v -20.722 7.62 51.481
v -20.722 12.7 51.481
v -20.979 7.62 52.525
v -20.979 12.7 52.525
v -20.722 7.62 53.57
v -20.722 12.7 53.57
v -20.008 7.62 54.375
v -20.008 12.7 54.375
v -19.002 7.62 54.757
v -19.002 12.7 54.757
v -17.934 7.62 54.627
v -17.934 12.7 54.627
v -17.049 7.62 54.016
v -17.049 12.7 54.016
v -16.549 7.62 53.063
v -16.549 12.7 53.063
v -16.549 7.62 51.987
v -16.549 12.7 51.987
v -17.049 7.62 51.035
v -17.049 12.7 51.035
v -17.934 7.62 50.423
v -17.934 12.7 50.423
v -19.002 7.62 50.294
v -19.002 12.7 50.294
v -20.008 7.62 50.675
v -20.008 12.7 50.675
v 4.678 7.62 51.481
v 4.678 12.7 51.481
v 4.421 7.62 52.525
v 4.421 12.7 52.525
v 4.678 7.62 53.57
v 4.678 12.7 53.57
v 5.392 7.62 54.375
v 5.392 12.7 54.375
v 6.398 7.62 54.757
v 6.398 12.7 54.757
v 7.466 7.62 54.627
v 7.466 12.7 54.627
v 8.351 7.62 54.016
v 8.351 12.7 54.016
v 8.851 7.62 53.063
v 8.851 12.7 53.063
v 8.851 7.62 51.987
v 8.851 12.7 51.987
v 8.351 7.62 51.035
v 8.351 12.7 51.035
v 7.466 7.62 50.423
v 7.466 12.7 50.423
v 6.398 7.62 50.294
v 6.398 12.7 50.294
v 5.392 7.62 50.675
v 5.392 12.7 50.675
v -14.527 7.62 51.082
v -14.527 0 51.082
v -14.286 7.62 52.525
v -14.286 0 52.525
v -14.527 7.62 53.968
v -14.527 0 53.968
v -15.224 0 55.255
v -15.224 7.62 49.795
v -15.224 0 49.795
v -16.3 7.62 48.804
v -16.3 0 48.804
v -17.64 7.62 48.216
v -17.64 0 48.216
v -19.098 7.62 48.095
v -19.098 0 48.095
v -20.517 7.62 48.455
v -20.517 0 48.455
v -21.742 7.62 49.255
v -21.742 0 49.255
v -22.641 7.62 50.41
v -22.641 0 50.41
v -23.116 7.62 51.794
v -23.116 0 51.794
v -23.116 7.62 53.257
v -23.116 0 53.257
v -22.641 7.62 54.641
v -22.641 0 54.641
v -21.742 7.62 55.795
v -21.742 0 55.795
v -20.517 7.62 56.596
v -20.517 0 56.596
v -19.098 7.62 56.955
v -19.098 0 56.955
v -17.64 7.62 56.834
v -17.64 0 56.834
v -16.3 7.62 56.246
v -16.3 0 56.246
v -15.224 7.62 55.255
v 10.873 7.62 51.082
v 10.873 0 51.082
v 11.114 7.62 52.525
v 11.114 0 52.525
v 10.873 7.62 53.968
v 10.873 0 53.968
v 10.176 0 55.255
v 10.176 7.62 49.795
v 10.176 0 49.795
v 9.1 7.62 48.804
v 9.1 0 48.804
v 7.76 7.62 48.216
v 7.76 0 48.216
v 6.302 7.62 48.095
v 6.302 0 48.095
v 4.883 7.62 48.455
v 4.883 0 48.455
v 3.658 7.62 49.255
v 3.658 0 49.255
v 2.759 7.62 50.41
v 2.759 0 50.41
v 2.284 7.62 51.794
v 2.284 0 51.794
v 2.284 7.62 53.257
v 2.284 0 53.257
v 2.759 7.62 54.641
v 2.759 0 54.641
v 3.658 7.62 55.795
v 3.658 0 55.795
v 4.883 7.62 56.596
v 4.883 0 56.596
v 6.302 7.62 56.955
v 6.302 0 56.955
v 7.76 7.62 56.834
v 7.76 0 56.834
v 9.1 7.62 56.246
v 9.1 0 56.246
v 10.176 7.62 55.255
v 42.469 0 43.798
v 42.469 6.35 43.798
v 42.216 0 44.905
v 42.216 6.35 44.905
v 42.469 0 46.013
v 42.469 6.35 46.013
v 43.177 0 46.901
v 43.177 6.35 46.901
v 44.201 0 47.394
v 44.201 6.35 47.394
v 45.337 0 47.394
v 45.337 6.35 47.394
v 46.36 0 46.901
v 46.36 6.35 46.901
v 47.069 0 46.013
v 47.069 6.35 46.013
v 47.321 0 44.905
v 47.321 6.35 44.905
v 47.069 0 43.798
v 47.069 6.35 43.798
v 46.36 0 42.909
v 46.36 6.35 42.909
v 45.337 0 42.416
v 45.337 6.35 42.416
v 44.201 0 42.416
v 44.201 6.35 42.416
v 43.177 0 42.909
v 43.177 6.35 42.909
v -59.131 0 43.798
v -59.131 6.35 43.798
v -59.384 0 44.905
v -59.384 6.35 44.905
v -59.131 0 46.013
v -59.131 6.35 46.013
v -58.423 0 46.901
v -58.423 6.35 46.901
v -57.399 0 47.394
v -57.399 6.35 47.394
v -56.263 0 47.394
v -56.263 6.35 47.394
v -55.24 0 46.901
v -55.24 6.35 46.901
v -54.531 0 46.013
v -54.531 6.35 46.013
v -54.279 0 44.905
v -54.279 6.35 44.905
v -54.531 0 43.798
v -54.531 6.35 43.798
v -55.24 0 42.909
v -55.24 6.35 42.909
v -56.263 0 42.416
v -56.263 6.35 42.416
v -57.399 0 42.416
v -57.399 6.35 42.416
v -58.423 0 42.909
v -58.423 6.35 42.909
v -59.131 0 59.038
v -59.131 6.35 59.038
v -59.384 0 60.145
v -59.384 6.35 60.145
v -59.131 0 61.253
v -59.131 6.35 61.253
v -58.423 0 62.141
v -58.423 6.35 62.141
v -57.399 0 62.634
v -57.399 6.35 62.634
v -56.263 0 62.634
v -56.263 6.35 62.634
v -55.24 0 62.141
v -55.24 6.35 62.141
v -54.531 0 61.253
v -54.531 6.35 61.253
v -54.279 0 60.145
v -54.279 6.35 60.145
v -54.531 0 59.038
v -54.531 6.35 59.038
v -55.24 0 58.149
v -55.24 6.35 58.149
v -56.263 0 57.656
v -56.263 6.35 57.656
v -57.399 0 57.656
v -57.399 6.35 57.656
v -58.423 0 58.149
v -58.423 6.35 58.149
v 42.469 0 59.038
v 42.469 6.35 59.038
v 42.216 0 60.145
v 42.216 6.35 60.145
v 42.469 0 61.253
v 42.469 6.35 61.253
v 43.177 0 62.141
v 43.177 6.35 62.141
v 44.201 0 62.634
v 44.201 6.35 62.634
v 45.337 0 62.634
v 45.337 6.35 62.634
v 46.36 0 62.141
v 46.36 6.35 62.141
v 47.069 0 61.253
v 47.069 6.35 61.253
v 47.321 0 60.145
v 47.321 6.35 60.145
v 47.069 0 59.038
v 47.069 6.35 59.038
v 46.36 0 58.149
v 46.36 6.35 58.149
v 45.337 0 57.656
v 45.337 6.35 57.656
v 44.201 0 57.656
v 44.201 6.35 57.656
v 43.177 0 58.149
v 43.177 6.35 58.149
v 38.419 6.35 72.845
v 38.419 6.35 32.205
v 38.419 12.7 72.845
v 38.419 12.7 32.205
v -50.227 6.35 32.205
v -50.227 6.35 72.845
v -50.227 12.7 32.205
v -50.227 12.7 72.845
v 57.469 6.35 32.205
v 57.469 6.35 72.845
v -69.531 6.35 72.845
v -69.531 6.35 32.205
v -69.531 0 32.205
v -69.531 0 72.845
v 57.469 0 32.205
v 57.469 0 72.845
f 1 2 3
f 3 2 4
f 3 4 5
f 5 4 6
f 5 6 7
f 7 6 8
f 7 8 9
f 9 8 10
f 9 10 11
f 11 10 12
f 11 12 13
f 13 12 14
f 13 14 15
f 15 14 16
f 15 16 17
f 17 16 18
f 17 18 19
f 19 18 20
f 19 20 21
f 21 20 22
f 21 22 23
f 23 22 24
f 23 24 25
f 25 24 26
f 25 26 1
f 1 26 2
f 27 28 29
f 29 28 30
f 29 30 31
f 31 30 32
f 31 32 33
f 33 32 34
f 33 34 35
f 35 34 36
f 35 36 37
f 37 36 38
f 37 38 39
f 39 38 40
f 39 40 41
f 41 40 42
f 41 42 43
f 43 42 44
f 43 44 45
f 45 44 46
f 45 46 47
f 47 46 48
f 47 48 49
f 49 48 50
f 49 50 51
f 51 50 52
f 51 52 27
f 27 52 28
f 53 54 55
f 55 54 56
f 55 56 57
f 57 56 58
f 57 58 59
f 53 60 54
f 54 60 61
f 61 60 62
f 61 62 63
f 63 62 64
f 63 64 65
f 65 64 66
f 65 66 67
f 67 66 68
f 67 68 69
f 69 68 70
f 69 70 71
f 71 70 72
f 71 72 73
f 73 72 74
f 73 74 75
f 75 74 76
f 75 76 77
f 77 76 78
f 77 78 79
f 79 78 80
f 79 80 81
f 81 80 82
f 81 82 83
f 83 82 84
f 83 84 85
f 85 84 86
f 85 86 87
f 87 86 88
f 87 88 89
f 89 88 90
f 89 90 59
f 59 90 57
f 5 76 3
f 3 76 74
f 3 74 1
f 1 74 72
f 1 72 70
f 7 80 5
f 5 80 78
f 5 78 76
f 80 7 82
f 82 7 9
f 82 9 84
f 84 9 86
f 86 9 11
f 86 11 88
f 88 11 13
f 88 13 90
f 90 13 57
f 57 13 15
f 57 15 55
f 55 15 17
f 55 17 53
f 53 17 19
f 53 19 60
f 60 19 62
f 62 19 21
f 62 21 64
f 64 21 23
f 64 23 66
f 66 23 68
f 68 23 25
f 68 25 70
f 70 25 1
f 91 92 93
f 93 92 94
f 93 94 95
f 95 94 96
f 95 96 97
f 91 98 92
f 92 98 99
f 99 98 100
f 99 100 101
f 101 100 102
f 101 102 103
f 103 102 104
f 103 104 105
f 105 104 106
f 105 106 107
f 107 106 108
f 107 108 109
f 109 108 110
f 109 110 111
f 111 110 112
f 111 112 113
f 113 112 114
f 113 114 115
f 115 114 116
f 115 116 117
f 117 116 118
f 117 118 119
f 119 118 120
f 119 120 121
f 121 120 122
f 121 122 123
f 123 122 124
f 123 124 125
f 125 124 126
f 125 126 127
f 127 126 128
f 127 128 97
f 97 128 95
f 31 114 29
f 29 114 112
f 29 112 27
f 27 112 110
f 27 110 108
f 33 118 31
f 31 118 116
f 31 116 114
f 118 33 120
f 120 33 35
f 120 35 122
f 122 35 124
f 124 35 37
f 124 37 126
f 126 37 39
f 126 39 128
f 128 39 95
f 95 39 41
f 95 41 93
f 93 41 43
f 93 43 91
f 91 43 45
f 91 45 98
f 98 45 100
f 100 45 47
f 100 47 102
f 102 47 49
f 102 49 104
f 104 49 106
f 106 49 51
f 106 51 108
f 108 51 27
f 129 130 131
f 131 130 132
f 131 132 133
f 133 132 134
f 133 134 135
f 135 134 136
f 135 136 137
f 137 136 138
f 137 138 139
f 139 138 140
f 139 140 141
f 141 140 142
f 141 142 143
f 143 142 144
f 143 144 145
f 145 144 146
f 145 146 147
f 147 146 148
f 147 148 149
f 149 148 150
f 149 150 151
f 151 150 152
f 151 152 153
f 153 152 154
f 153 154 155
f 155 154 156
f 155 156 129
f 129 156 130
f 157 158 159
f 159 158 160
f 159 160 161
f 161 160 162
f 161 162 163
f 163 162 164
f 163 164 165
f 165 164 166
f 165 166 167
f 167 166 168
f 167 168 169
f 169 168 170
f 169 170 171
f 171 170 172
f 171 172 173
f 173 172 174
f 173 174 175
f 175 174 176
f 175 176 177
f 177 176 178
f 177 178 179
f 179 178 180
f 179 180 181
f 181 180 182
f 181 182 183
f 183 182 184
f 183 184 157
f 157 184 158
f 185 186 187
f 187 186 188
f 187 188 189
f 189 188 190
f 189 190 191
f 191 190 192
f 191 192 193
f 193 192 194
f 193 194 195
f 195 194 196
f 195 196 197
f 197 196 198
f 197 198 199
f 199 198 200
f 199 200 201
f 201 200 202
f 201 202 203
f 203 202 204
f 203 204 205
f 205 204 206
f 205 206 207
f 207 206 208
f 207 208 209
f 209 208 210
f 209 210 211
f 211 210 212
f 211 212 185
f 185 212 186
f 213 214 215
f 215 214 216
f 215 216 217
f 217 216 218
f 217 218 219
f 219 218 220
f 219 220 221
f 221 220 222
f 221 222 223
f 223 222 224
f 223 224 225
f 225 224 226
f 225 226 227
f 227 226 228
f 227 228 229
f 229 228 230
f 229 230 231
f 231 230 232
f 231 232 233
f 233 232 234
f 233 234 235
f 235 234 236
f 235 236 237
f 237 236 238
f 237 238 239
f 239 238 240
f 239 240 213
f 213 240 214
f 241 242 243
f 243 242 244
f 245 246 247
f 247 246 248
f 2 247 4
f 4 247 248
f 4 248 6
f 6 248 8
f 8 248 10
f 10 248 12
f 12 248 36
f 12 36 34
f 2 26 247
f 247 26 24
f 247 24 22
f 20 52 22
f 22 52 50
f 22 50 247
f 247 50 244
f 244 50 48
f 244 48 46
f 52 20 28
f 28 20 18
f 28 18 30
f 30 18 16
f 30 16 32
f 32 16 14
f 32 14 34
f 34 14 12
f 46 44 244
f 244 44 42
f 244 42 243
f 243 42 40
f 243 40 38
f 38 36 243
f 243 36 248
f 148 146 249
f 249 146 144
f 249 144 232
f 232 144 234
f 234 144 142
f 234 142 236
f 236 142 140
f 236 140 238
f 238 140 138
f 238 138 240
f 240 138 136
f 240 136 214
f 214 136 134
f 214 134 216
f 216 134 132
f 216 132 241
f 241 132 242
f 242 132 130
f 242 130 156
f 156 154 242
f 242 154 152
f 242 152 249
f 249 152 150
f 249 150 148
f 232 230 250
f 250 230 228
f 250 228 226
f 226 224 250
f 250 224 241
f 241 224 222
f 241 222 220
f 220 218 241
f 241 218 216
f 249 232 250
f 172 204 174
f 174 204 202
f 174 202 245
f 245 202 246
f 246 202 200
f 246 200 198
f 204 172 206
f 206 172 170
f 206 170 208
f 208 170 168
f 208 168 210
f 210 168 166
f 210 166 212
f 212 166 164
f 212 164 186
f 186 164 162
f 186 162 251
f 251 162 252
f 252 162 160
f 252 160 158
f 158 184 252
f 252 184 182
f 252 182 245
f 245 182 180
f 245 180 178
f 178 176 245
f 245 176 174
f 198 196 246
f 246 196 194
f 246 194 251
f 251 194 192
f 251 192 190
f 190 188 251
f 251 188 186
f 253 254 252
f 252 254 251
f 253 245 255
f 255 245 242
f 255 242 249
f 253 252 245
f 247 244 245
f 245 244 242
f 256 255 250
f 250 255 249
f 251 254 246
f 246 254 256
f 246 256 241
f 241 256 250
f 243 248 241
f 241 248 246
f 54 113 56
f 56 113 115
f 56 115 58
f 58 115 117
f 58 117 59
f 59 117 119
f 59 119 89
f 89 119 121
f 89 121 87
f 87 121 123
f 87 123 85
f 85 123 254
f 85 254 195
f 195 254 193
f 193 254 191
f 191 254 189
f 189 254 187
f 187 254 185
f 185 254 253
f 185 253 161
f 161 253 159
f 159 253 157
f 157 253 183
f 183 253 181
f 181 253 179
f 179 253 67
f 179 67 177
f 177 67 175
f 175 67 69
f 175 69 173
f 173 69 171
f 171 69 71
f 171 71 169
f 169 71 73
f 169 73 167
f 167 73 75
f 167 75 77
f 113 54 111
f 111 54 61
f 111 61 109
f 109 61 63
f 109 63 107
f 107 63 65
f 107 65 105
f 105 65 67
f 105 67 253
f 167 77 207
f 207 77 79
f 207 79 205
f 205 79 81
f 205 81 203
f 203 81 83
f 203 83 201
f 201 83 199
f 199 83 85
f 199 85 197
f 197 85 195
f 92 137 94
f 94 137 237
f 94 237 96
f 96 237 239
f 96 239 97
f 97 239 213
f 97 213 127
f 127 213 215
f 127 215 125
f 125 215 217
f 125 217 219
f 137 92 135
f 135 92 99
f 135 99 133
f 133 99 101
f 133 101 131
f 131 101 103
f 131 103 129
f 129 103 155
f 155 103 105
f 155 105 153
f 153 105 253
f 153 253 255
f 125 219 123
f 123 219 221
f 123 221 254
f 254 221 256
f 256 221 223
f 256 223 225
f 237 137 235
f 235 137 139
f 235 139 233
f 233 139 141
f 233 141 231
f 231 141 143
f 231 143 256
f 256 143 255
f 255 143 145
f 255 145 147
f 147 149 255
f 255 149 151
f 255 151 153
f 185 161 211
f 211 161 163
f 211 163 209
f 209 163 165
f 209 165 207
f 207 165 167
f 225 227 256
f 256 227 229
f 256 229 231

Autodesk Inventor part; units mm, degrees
ref_plane "YZ Plane" through (0, 0, 0) normal (1, 0, 0) x (0, 1, 0)
ref_plane "XZ Plane" through (0, 0, 0) normal (0, 1, 0) x (-1, 0, 0)
ref_plane "XY Plane" through (0, 0, 0) normal (0, 0, 1) x (1, 0, 0)
sketch "Sketch1" plane through (0, 0, 0) normal (0, 1, 0) x (-1, 0, 0)
  line L0 (69.5314, 72.8452) -> (-57.4686, 72.8452)
  line L1 (-57.4686, 72.8452) -> (-57.4686, 32.2052)
  line L2 (-57.4686, 32.2052) -> (69.5314, 32.2052)
  line L3 (69.5314, 32.2052) -> (69.5314, 72.8452)
  point P0 (0, 0)
  dimension "d0" = 127
  dimension "d1" = 40.64
extrude "Extrusion1" add sketch "Sketch1" along normal blind 6.35
sketch "Sketch2" plane through (0, 6.35, 0) normal (0, 1, 0) x (1, 0, 0)
  line L0 (-50.2274, -32.2052) -> (38.4186, -32.2052)
  line L1 (38.4186, -32.2052) -> (38.4186, -72.8452)
  line L2 (38.4186, -72.8452) -> (-50.2274, -72.8452)
  line L3 (-50.2274, -72.8452) -> (-50.2274, -32.2052)
  line L4 (-69.5314, -32.2052) -> (-69.5314, -72.8452) projected
  line L5 (57.4686, -72.8452) -> (57.4686, -32.2052) projected
  line L6 (57.4686, -32.2052) -> (-69.5314, -32.2052) projected
  line L7 (-69.5314, -72.8452) -> (57.4686, -72.8452) projected
  point P0 (0, 0)
  dimension "d4" = 19.304
  dimension "d5" = 19.05
  dimension "d6" = 0
  dimension "d7" = 0
extrude "Extrusion2" add sketch "Sketch2" along normal blind 6.35 contours L0 L1 L2 L3
sketch "Sketch3" plane through (0, 6.35, 0) normal (0, 1, 0) x (1, 0, 0)
  line L0 (57.4686, -32.2052) -> (38.4186, -32.2052) projected
  line L1 (57.4686, -72.8452) -> (57.4686, -32.2052) projected
  line L2 (-69.5314, -32.2052) -> (-69.5314, -72.8452) projected
  line L3 (-50.2274, -32.2052) -> (-69.5314, -32.2052) projected
  line L4 (-69.5314, -72.8452) -> (-50.2274, -72.8452) projected
  line L5 (38.4186, -72.8452) -> (57.4686, -72.8452) projected
  circle A0 centre (-27.5338, -49.4612) radius 4.3448
  circle A1 centre (16.1358, -48.3961) radius 3.4084
  point P0 (0, 0)
  point P1 (-56.8314, -44.9052)
  point P2 (-56.8314, -60.1452)
  point P3 (44.7686, -44.9052)
  point P4 (44.7686, -60.1452)
  dimension "d10" = 12.7
  dimension "d11" = 12.7
  dimension "d12" = 12.7
  dimension "d13" = 12.7
  dimension "d14" = 12.7
  dimension "d15" = 12.7
  dimension "d16" = 12.7
  dimension "d17" = 12.7
hole "Hole1" at (-56.8314, 6.35, 44.9052) at (-56.8314, 6.35, 60.1452) at (44.7686, 6.35, 44.9052) at (44.7686, 6.35, 60.1452) direction (0, -1, 0) diameter 5.1054 depth 25.4 tip angle 118 clearance for "Flat Head Machine Screw (82)" size "#10" standard "Ansi Unified Screw Threads"
sketch "Sketch4" plane through (0, 0, 0) normal (0, -1, 0) x (1, 0, 0)
  circle A0 centre (-18.7314, 52.5252) radius 4.445
  circle A1 centre (6.6686, 52.5252) radius 4.445
  line L0 (57.4686, 32.2052) -> (-69.5314, 32.2052) projected
  line L1 (57.4686, 72.8452) -> (57.4686, 32.2052) projected
  line L2 (-69.5314, 32.2052) -> (-69.5314, 72.8452) projected
  point P0 (0, 0)
  dimension "d25" = 20.32
  dimension "d26" = 0
  dimension "d27" = 50.8
  dimension "d28" = 50.8
  dimension "d29" = 8.89
  dimension "d30" = 8.89
extrude "Extrusion3" cut sketch "Sketch4" against normal blind 7.62
sketch "Sketch5" plane through (0, 0, 0) normal (0, -1, 0) x (1, 0, 0)
  point P0 (0, 0)
sketch "Sketch6" plane through (0, 0, 0) normal (0, -1, 0) x (1, 0, 0)
  circle A0 centre (-18.7314, 52.5252) radius 4.445 projected
  circle A1 centre (6.6686, 52.5252) radius 4.445 projected
  point P0 (0, 0)
hole "Hole2" at (-18.7314, 0, 52.5252) at (6.6686, 0, 52.5252) direction (0, 1, 0) diameter 4.4958 depth 25.4 tip angle 118 clearance for "Flat Head Machine Screw (82)" size "#8" standard "Ansi Unified Screw Threads"
properties part number "HandleBlock"
